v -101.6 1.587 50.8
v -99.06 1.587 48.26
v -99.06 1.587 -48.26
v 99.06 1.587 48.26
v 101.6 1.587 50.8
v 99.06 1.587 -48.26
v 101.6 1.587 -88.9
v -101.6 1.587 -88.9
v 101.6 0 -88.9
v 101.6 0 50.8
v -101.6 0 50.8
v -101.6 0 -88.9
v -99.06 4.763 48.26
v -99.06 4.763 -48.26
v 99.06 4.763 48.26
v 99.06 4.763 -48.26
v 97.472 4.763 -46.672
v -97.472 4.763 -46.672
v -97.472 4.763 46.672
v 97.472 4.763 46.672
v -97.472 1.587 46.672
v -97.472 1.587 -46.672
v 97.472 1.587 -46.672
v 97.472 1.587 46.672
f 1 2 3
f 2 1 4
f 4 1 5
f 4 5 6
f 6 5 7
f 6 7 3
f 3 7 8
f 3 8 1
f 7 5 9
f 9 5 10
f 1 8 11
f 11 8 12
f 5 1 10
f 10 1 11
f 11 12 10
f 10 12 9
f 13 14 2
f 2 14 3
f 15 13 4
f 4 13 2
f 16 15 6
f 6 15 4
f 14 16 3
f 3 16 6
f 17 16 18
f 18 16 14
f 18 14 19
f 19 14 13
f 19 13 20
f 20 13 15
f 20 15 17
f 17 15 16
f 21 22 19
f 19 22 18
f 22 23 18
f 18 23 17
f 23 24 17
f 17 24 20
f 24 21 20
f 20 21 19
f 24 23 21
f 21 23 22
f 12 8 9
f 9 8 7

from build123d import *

# Parameters (mm, degrees)
SKETCH1_W           = 203.2
SKETCH1_H           = 101.6
BOSS_EXTRUDE1_DEPTH = 1.5875
SKETCH2_W           = 198.12
SKETCH2_H           = 96.52
BOSS_EXTRUDE2_DEPTH = 3.175
SKETCH3_W           = 194.945
SKETCH3_H           = 93.345
CUT_EXTRUDE1_DEPTH  = 3.175
SKETCH5_W           = 203.2
SKETCH5_H           = 1.5875
BOSS_EXTRUDE3_DEPTH = 38.1


with BuildPart() as part:
    # Sketch1 → Boss-Extrude1 (new body)
    with BuildSketch(Plane(origin=(0, 0, 0), x_dir=(1, 0, 0), z_dir=(0, 1, 0))):
        Rectangle(SKETCH1_W, SKETCH1_H)
    extrude(amount=BOSS_EXTRUDE1_DEPTH)

    # Sketch2 → Boss-Extrude2 (add)
    with BuildSketch(Plane(origin=(0, 1.5875, 0), x_dir=(1, 0, 0), z_dir=(0, 1, 0))):
        Rectangle(SKETCH2_W, SKETCH2_H)
    extrude(amount=BOSS_EXTRUDE2_DEPTH)

    # Sketch3 → Cut-Extrude1 (cut)
    with BuildSketch(Plane(origin=(0, 4.7625, 0), x_dir=(1, 0, 0), z_dir=(0, 1, 0))):
        Rectangle(SKETCH3_W, SKETCH3_H)
    extrude(amount=-CUT_EXTRUDE1_DEPTH, mode=Mode.SUBTRACT)

    # Sketch5 → Boss-Extrude3 (add)
    with BuildSketch(Plane(origin=(0, 0, -50.8), x_dir=(-1, 0, 0), z_dir=(0, 0, -1))):
        with Locations((0, 0.79375)):
            Rectangle(SKETCH5_W, SKETCH5_H)
    extrude(amount=BOSS_EXTRUDE3_DEPTH)


solid = part.part
